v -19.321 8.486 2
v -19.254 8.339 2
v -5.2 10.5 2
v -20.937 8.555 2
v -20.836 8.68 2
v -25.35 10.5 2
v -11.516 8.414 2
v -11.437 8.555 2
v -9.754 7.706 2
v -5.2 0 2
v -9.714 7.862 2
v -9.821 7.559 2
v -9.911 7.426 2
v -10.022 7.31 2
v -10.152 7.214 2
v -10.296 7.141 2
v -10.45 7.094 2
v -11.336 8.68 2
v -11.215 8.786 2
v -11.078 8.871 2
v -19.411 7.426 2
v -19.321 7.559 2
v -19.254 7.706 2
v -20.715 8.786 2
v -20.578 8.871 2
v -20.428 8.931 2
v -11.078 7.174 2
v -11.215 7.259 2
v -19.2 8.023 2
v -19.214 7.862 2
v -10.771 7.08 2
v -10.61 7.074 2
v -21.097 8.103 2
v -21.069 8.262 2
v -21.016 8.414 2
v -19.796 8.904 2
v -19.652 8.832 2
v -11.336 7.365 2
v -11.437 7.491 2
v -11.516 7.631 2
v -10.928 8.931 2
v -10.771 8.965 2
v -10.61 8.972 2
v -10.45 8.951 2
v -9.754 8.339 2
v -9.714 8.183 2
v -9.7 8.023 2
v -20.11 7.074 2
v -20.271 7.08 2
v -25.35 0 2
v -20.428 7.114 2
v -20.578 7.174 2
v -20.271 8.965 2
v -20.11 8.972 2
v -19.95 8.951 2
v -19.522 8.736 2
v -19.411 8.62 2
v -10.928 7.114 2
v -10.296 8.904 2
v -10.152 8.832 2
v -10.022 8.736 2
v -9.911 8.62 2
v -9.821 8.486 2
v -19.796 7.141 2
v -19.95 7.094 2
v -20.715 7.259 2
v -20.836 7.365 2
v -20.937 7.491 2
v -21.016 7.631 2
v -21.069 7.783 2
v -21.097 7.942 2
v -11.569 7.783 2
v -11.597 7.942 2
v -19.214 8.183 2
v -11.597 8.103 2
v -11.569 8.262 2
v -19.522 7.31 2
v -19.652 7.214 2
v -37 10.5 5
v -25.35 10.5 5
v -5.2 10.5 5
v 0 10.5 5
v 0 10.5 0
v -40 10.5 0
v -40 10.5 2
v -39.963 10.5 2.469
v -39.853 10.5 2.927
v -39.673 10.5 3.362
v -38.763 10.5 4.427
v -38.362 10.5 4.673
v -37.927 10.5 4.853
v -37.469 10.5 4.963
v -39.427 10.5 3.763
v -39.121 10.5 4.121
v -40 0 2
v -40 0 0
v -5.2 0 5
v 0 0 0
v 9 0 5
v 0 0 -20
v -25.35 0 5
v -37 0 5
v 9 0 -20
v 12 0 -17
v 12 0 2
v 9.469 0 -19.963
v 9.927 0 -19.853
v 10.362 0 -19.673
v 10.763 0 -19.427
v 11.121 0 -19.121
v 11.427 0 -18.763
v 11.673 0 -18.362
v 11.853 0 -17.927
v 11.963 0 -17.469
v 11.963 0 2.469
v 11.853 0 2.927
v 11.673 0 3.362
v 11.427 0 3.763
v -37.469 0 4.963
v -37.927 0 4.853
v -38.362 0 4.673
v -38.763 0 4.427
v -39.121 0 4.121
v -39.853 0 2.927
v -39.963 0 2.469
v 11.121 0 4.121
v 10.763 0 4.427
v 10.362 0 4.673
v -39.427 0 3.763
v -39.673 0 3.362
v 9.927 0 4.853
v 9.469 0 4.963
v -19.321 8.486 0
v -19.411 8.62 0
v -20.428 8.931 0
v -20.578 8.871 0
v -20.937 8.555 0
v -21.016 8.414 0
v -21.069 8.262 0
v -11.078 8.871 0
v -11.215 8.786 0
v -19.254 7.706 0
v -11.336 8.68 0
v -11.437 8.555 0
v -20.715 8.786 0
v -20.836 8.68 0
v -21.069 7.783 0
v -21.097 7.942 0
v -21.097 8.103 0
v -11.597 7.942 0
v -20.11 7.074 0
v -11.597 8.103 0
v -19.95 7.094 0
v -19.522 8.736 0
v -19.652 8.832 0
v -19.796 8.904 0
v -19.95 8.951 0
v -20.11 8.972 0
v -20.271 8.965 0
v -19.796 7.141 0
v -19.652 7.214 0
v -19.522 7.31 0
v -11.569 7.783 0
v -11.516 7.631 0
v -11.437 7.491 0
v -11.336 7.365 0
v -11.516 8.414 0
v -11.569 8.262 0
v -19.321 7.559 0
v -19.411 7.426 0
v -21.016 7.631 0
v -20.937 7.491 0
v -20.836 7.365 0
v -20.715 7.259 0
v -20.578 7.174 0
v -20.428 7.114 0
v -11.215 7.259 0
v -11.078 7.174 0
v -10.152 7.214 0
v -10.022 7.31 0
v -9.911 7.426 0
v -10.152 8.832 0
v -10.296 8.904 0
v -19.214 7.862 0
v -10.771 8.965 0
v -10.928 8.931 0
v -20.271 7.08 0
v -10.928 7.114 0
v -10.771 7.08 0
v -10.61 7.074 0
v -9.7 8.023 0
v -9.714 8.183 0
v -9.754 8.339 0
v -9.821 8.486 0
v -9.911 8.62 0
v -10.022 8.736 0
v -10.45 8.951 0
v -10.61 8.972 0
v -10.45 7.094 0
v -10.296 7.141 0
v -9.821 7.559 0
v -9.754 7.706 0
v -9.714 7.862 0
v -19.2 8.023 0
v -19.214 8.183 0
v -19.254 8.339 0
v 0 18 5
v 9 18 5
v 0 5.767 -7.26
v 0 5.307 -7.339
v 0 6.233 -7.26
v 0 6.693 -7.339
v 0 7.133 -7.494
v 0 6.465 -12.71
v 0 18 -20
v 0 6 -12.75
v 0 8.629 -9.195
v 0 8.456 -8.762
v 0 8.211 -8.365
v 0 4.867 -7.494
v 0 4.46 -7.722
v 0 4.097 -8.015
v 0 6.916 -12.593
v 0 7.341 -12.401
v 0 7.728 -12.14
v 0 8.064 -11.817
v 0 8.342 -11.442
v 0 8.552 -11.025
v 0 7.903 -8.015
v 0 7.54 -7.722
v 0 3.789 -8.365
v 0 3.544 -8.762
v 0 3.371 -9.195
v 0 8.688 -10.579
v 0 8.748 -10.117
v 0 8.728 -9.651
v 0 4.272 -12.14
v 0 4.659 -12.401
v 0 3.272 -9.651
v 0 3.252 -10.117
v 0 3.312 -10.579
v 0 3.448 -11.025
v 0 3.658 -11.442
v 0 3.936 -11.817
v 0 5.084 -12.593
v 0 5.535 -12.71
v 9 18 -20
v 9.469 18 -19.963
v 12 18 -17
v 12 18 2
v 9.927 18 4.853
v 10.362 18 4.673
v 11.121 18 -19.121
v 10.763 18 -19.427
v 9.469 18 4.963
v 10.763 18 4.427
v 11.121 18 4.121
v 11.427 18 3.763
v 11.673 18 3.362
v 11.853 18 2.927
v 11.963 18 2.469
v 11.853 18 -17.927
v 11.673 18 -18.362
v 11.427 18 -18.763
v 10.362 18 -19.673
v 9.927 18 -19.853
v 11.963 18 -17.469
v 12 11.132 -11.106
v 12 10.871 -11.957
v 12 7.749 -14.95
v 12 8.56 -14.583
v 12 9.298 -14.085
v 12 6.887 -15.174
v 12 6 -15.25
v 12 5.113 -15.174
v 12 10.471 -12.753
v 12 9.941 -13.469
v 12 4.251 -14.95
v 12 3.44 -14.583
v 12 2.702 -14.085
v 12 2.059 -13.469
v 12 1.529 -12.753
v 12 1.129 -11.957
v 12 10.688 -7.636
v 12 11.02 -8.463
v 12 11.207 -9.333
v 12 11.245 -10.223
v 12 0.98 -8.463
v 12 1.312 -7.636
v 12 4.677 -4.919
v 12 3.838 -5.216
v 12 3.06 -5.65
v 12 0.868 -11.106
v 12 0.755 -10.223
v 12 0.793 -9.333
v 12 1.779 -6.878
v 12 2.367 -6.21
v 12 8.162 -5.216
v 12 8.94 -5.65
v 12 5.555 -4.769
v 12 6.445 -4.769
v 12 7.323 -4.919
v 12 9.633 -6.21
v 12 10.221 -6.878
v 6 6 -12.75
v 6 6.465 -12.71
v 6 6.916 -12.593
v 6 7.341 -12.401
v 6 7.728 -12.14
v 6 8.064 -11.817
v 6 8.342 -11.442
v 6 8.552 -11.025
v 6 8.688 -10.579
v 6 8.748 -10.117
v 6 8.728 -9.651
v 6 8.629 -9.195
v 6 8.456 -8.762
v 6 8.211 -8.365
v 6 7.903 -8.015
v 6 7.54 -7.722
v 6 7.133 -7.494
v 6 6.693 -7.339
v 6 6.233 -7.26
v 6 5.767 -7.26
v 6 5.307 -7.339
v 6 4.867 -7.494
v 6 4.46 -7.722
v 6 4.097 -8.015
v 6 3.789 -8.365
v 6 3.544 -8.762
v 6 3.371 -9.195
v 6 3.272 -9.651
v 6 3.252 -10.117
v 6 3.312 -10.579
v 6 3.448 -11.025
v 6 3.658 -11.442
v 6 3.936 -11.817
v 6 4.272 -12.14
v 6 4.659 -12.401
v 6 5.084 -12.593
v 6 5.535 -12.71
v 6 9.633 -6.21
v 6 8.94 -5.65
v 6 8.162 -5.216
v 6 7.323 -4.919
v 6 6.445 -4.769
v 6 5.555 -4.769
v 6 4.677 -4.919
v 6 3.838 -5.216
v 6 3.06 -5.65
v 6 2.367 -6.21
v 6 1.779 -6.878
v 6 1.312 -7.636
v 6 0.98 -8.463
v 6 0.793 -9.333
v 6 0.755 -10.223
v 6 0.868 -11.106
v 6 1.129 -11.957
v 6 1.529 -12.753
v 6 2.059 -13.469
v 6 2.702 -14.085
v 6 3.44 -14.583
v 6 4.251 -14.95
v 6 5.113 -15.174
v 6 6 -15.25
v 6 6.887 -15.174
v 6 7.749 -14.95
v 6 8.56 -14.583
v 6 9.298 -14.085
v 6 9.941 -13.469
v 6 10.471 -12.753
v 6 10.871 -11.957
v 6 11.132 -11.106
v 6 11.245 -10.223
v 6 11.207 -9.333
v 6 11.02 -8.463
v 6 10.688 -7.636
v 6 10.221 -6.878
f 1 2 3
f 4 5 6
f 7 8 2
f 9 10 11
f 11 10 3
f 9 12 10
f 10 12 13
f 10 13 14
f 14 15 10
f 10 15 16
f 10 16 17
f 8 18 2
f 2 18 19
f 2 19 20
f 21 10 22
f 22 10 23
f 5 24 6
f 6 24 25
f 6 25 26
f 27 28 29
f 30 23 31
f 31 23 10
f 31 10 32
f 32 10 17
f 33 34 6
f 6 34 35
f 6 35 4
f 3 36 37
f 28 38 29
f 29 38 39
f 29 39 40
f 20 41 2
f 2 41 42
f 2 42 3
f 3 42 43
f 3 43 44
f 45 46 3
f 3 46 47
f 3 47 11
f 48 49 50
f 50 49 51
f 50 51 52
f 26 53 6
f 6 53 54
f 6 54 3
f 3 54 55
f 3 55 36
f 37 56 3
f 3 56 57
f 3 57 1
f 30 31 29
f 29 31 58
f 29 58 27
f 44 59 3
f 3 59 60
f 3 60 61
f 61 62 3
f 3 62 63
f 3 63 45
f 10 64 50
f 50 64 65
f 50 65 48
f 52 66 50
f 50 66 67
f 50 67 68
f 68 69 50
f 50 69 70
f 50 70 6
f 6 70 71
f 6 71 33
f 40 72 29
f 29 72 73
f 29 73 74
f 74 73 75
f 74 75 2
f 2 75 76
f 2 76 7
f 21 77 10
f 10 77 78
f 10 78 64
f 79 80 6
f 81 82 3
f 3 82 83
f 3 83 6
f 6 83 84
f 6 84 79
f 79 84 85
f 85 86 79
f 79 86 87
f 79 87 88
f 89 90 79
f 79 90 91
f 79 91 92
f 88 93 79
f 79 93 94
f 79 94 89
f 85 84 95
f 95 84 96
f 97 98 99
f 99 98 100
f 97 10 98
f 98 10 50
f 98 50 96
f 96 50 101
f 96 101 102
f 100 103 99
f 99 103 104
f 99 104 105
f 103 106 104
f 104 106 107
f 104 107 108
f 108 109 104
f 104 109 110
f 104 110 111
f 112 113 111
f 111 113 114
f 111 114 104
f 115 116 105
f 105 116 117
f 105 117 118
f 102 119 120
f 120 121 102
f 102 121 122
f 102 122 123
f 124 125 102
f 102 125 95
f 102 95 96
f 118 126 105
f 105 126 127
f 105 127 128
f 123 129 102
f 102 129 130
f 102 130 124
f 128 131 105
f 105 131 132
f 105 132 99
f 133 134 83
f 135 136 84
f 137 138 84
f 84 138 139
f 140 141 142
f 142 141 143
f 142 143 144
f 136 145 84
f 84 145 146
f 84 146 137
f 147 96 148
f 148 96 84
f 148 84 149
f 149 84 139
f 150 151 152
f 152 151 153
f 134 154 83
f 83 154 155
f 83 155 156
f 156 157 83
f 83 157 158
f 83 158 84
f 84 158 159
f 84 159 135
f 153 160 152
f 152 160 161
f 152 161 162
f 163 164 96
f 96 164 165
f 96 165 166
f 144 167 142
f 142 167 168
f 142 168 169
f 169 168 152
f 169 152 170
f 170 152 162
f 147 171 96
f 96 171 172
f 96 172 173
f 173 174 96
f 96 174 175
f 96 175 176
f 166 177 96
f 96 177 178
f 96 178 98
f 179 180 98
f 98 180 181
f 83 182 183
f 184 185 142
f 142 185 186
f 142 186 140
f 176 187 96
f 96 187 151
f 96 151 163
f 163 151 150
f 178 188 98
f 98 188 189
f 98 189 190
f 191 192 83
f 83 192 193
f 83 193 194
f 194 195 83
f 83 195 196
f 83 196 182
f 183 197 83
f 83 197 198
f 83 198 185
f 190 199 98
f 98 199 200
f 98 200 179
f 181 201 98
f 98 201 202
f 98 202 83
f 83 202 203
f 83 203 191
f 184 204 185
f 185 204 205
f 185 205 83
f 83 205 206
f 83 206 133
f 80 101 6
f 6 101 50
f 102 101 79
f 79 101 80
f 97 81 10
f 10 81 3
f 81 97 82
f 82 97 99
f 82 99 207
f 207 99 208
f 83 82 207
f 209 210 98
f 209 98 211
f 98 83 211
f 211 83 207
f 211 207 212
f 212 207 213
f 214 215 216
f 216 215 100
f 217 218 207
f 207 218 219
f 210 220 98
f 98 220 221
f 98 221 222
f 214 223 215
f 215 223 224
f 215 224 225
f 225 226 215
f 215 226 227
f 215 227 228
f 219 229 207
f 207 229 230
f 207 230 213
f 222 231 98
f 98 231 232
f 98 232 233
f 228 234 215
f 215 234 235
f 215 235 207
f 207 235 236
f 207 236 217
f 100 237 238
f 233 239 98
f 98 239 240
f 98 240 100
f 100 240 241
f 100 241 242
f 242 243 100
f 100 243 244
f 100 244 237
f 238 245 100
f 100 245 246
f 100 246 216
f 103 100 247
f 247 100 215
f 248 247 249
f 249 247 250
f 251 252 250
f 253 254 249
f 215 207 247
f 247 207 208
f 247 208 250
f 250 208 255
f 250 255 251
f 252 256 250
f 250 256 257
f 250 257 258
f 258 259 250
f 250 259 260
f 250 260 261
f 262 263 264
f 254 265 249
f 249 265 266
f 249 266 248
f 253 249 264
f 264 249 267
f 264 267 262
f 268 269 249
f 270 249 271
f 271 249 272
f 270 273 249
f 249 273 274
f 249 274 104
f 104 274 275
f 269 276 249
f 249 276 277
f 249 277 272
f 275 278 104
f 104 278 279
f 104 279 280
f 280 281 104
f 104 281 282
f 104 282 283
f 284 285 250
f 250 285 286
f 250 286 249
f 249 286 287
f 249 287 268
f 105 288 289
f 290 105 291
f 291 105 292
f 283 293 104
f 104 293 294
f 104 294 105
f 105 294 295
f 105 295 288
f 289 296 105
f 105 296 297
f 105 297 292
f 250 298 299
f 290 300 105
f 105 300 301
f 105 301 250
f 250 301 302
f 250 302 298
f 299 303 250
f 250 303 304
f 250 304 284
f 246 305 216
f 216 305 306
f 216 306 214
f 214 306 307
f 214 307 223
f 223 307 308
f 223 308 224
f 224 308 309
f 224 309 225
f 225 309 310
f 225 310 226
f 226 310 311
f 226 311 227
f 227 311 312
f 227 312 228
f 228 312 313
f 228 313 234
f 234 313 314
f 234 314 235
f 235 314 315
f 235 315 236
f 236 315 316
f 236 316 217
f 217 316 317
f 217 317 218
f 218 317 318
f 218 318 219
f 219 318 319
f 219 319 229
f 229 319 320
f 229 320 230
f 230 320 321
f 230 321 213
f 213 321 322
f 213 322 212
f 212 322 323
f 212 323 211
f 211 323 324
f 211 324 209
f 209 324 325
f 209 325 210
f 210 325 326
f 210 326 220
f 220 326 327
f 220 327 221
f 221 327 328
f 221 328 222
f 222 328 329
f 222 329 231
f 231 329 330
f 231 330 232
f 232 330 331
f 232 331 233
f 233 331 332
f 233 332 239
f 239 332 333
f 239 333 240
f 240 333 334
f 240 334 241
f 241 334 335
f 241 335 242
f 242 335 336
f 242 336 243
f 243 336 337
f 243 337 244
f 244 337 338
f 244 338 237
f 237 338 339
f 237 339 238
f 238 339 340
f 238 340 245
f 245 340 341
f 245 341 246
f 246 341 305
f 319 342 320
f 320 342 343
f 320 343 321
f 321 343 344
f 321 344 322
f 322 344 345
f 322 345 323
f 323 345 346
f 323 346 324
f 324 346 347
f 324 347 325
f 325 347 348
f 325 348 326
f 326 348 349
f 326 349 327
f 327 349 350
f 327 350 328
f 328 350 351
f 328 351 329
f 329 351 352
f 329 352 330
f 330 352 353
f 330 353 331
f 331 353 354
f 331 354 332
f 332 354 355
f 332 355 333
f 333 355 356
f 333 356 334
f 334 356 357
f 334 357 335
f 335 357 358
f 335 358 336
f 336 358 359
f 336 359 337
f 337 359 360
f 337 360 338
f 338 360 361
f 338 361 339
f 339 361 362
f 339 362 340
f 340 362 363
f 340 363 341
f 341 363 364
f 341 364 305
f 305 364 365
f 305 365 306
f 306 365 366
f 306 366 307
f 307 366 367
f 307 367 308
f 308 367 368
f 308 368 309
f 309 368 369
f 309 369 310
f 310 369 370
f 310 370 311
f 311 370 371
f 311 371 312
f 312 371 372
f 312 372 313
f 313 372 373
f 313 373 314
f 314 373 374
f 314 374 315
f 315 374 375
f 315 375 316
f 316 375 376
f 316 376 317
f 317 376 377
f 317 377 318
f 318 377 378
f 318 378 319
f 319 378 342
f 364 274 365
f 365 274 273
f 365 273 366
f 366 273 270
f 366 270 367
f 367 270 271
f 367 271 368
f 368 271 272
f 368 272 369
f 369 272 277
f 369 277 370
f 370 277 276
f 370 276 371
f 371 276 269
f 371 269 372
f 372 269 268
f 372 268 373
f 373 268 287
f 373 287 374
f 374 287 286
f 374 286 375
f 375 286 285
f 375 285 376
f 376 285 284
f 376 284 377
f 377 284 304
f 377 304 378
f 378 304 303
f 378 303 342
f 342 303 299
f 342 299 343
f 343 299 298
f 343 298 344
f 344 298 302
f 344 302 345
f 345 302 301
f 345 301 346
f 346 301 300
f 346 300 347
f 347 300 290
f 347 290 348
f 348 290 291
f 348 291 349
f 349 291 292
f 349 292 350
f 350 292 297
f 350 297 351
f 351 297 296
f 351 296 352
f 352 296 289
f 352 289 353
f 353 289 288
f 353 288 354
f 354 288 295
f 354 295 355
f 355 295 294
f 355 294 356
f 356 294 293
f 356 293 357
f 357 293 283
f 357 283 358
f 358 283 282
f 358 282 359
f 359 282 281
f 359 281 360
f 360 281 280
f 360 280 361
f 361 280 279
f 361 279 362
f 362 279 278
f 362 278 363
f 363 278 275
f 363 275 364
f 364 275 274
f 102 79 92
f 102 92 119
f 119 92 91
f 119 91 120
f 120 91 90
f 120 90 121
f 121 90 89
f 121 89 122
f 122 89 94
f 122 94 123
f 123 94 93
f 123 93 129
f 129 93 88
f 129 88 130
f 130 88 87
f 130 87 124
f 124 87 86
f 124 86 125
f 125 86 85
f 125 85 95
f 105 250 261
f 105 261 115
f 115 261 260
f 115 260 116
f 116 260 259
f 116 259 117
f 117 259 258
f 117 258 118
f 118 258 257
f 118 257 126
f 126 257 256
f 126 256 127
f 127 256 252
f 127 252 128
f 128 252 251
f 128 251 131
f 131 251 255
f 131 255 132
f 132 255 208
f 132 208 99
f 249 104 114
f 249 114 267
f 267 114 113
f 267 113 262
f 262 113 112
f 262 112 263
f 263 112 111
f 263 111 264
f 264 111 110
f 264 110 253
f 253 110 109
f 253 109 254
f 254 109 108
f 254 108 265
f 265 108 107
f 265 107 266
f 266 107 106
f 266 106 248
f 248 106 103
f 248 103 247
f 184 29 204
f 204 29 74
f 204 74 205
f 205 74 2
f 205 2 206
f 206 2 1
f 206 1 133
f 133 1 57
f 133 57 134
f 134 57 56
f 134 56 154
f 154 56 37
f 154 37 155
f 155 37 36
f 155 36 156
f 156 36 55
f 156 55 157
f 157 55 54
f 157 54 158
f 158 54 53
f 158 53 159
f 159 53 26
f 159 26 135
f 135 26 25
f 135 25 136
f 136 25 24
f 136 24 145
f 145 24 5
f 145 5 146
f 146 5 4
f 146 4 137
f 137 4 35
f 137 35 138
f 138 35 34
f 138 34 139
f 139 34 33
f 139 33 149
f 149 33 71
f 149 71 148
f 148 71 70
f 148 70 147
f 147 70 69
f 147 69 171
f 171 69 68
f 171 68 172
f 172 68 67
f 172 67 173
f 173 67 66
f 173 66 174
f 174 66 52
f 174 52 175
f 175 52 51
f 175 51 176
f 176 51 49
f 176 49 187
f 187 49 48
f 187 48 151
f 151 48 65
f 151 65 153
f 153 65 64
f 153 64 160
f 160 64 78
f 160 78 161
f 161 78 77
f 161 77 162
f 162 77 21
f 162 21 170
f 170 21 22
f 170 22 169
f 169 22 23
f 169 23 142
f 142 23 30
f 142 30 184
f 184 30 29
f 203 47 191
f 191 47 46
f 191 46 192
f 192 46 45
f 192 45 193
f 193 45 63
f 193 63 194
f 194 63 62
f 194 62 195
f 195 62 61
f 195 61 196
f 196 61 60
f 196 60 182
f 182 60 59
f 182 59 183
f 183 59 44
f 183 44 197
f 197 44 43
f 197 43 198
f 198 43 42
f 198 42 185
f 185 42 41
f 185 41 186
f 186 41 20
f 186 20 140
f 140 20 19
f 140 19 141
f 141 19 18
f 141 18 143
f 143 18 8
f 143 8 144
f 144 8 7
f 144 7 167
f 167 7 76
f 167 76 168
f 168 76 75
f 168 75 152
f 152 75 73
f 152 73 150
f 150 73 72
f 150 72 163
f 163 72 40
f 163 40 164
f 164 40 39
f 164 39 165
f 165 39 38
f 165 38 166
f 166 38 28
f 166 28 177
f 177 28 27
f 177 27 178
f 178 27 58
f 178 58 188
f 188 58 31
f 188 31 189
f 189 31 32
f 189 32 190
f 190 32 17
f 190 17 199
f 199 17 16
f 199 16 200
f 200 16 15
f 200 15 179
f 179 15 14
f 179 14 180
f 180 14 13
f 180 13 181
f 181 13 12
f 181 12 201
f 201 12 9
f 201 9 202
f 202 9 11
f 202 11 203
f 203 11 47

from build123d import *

# Parameters (mm, degrees)
SKETCH1_W                      = 40
SKETCH1_H                      = 10.5
BOSS_EXTRUDE1_DEPTH            = 2
SKETCH2_W                      = 14.65
SKETCH2_H                      = 10.5
SKETCH2_W_2                    = 5.2
BOSS_EXTRUDE2_DEPTH            = 3
SKETCH3_W                      = 25
SKETCH3_H                      = 18
BOSS_EXTRUDE3_DEPTH            = 12
CBORE_FOR_M5_SHCS1_D           = 5.5
CBORE_FOR_M5_SHCS1_DEPTH       = 12
CBORE_FOR_M5_SHCS1_CBORE_D     = 10.5
CBORE_FOR_M5_SHCS1_CBORE_DEPTH = 6
FILLET1_R                      = 3
SKETCH6_R                      = 0.95
CUT_EXTRUDE1_DEPTH             = 23


with BuildPart() as part:
    # Sketch1 → Boss-Extrude1 (new body)
    with BuildSketch(Plane.XY):
        with Locations((-20, 5.25)):
            Rectangle(SKETCH1_W, SKETCH1_H)
    extrude(amount=BOSS_EXTRUDE1_DEPTH)

    # Sketch2 → Boss-Extrude2 (add)
    with BuildSketch(Plane.XY.offset(2)):
        with Locations((-32.675, 5.25)):
            Rectangle(SKETCH2_W, SKETCH2_H)
        with Locations((-2.6, 5.25)):
            Rectangle(SKETCH2_W_2, SKETCH2_H)
    extrude(amount=BOSS_EXTRUDE2_DEPTH)

    # Sketch3 → Boss-Extrude3 (add)
    with BuildSketch(Plane(origin=(0, 0, 0), x_dir=(0, 0, -1), z_dir=(1, 0, 0))):
        with Locations((7.5, 9)):
            Rectangle(SKETCH3_W, SKETCH3_H)
    extrude(amount=BOSS_EXTRUDE3_DEPTH)

    # CBORE for M5 SHCS1
    with Locations(Plane(origin=(12, 0, 0), x_dir=(0, 0, -1), z_dir=(1, 0, 0))):
        with Locations((10, 6)):
            CounterBoreHole(CBORE_FOR_M5_SHCS1_D / 2, CBORE_FOR_M5_SHCS1_CBORE_D / 2, CBORE_FOR_M5_SHCS1_CBORE_DEPTH, depth=CBORE_FOR_M5_SHCS1_DEPTH)

    # Fillet1
    fillet1_edges = [part.edges().sort_by_distance(p)[0] for p in [
        (-40, 5.25, 5),
        (12, 9, 5),
        (12, 9, -20),
    ]]
    fillet(fillet1_edges, radius=FILLET1_R)

    # Sketch6 → Cut-Extrude1 (cut, through all)
    with BuildSketch(Plane.XY.offset(2)):
        with Locations((-20.15, 8.022701753)):
            Circle(SKETCH6_R)
        with Locations((-10.65, 8.022701753)):
            Circle(SKETCH6_R)
    extrude(amount=-CUT_EXTRUDE1_DEPTH, mode=Mode.SUBTRACT)


solid = part.part
